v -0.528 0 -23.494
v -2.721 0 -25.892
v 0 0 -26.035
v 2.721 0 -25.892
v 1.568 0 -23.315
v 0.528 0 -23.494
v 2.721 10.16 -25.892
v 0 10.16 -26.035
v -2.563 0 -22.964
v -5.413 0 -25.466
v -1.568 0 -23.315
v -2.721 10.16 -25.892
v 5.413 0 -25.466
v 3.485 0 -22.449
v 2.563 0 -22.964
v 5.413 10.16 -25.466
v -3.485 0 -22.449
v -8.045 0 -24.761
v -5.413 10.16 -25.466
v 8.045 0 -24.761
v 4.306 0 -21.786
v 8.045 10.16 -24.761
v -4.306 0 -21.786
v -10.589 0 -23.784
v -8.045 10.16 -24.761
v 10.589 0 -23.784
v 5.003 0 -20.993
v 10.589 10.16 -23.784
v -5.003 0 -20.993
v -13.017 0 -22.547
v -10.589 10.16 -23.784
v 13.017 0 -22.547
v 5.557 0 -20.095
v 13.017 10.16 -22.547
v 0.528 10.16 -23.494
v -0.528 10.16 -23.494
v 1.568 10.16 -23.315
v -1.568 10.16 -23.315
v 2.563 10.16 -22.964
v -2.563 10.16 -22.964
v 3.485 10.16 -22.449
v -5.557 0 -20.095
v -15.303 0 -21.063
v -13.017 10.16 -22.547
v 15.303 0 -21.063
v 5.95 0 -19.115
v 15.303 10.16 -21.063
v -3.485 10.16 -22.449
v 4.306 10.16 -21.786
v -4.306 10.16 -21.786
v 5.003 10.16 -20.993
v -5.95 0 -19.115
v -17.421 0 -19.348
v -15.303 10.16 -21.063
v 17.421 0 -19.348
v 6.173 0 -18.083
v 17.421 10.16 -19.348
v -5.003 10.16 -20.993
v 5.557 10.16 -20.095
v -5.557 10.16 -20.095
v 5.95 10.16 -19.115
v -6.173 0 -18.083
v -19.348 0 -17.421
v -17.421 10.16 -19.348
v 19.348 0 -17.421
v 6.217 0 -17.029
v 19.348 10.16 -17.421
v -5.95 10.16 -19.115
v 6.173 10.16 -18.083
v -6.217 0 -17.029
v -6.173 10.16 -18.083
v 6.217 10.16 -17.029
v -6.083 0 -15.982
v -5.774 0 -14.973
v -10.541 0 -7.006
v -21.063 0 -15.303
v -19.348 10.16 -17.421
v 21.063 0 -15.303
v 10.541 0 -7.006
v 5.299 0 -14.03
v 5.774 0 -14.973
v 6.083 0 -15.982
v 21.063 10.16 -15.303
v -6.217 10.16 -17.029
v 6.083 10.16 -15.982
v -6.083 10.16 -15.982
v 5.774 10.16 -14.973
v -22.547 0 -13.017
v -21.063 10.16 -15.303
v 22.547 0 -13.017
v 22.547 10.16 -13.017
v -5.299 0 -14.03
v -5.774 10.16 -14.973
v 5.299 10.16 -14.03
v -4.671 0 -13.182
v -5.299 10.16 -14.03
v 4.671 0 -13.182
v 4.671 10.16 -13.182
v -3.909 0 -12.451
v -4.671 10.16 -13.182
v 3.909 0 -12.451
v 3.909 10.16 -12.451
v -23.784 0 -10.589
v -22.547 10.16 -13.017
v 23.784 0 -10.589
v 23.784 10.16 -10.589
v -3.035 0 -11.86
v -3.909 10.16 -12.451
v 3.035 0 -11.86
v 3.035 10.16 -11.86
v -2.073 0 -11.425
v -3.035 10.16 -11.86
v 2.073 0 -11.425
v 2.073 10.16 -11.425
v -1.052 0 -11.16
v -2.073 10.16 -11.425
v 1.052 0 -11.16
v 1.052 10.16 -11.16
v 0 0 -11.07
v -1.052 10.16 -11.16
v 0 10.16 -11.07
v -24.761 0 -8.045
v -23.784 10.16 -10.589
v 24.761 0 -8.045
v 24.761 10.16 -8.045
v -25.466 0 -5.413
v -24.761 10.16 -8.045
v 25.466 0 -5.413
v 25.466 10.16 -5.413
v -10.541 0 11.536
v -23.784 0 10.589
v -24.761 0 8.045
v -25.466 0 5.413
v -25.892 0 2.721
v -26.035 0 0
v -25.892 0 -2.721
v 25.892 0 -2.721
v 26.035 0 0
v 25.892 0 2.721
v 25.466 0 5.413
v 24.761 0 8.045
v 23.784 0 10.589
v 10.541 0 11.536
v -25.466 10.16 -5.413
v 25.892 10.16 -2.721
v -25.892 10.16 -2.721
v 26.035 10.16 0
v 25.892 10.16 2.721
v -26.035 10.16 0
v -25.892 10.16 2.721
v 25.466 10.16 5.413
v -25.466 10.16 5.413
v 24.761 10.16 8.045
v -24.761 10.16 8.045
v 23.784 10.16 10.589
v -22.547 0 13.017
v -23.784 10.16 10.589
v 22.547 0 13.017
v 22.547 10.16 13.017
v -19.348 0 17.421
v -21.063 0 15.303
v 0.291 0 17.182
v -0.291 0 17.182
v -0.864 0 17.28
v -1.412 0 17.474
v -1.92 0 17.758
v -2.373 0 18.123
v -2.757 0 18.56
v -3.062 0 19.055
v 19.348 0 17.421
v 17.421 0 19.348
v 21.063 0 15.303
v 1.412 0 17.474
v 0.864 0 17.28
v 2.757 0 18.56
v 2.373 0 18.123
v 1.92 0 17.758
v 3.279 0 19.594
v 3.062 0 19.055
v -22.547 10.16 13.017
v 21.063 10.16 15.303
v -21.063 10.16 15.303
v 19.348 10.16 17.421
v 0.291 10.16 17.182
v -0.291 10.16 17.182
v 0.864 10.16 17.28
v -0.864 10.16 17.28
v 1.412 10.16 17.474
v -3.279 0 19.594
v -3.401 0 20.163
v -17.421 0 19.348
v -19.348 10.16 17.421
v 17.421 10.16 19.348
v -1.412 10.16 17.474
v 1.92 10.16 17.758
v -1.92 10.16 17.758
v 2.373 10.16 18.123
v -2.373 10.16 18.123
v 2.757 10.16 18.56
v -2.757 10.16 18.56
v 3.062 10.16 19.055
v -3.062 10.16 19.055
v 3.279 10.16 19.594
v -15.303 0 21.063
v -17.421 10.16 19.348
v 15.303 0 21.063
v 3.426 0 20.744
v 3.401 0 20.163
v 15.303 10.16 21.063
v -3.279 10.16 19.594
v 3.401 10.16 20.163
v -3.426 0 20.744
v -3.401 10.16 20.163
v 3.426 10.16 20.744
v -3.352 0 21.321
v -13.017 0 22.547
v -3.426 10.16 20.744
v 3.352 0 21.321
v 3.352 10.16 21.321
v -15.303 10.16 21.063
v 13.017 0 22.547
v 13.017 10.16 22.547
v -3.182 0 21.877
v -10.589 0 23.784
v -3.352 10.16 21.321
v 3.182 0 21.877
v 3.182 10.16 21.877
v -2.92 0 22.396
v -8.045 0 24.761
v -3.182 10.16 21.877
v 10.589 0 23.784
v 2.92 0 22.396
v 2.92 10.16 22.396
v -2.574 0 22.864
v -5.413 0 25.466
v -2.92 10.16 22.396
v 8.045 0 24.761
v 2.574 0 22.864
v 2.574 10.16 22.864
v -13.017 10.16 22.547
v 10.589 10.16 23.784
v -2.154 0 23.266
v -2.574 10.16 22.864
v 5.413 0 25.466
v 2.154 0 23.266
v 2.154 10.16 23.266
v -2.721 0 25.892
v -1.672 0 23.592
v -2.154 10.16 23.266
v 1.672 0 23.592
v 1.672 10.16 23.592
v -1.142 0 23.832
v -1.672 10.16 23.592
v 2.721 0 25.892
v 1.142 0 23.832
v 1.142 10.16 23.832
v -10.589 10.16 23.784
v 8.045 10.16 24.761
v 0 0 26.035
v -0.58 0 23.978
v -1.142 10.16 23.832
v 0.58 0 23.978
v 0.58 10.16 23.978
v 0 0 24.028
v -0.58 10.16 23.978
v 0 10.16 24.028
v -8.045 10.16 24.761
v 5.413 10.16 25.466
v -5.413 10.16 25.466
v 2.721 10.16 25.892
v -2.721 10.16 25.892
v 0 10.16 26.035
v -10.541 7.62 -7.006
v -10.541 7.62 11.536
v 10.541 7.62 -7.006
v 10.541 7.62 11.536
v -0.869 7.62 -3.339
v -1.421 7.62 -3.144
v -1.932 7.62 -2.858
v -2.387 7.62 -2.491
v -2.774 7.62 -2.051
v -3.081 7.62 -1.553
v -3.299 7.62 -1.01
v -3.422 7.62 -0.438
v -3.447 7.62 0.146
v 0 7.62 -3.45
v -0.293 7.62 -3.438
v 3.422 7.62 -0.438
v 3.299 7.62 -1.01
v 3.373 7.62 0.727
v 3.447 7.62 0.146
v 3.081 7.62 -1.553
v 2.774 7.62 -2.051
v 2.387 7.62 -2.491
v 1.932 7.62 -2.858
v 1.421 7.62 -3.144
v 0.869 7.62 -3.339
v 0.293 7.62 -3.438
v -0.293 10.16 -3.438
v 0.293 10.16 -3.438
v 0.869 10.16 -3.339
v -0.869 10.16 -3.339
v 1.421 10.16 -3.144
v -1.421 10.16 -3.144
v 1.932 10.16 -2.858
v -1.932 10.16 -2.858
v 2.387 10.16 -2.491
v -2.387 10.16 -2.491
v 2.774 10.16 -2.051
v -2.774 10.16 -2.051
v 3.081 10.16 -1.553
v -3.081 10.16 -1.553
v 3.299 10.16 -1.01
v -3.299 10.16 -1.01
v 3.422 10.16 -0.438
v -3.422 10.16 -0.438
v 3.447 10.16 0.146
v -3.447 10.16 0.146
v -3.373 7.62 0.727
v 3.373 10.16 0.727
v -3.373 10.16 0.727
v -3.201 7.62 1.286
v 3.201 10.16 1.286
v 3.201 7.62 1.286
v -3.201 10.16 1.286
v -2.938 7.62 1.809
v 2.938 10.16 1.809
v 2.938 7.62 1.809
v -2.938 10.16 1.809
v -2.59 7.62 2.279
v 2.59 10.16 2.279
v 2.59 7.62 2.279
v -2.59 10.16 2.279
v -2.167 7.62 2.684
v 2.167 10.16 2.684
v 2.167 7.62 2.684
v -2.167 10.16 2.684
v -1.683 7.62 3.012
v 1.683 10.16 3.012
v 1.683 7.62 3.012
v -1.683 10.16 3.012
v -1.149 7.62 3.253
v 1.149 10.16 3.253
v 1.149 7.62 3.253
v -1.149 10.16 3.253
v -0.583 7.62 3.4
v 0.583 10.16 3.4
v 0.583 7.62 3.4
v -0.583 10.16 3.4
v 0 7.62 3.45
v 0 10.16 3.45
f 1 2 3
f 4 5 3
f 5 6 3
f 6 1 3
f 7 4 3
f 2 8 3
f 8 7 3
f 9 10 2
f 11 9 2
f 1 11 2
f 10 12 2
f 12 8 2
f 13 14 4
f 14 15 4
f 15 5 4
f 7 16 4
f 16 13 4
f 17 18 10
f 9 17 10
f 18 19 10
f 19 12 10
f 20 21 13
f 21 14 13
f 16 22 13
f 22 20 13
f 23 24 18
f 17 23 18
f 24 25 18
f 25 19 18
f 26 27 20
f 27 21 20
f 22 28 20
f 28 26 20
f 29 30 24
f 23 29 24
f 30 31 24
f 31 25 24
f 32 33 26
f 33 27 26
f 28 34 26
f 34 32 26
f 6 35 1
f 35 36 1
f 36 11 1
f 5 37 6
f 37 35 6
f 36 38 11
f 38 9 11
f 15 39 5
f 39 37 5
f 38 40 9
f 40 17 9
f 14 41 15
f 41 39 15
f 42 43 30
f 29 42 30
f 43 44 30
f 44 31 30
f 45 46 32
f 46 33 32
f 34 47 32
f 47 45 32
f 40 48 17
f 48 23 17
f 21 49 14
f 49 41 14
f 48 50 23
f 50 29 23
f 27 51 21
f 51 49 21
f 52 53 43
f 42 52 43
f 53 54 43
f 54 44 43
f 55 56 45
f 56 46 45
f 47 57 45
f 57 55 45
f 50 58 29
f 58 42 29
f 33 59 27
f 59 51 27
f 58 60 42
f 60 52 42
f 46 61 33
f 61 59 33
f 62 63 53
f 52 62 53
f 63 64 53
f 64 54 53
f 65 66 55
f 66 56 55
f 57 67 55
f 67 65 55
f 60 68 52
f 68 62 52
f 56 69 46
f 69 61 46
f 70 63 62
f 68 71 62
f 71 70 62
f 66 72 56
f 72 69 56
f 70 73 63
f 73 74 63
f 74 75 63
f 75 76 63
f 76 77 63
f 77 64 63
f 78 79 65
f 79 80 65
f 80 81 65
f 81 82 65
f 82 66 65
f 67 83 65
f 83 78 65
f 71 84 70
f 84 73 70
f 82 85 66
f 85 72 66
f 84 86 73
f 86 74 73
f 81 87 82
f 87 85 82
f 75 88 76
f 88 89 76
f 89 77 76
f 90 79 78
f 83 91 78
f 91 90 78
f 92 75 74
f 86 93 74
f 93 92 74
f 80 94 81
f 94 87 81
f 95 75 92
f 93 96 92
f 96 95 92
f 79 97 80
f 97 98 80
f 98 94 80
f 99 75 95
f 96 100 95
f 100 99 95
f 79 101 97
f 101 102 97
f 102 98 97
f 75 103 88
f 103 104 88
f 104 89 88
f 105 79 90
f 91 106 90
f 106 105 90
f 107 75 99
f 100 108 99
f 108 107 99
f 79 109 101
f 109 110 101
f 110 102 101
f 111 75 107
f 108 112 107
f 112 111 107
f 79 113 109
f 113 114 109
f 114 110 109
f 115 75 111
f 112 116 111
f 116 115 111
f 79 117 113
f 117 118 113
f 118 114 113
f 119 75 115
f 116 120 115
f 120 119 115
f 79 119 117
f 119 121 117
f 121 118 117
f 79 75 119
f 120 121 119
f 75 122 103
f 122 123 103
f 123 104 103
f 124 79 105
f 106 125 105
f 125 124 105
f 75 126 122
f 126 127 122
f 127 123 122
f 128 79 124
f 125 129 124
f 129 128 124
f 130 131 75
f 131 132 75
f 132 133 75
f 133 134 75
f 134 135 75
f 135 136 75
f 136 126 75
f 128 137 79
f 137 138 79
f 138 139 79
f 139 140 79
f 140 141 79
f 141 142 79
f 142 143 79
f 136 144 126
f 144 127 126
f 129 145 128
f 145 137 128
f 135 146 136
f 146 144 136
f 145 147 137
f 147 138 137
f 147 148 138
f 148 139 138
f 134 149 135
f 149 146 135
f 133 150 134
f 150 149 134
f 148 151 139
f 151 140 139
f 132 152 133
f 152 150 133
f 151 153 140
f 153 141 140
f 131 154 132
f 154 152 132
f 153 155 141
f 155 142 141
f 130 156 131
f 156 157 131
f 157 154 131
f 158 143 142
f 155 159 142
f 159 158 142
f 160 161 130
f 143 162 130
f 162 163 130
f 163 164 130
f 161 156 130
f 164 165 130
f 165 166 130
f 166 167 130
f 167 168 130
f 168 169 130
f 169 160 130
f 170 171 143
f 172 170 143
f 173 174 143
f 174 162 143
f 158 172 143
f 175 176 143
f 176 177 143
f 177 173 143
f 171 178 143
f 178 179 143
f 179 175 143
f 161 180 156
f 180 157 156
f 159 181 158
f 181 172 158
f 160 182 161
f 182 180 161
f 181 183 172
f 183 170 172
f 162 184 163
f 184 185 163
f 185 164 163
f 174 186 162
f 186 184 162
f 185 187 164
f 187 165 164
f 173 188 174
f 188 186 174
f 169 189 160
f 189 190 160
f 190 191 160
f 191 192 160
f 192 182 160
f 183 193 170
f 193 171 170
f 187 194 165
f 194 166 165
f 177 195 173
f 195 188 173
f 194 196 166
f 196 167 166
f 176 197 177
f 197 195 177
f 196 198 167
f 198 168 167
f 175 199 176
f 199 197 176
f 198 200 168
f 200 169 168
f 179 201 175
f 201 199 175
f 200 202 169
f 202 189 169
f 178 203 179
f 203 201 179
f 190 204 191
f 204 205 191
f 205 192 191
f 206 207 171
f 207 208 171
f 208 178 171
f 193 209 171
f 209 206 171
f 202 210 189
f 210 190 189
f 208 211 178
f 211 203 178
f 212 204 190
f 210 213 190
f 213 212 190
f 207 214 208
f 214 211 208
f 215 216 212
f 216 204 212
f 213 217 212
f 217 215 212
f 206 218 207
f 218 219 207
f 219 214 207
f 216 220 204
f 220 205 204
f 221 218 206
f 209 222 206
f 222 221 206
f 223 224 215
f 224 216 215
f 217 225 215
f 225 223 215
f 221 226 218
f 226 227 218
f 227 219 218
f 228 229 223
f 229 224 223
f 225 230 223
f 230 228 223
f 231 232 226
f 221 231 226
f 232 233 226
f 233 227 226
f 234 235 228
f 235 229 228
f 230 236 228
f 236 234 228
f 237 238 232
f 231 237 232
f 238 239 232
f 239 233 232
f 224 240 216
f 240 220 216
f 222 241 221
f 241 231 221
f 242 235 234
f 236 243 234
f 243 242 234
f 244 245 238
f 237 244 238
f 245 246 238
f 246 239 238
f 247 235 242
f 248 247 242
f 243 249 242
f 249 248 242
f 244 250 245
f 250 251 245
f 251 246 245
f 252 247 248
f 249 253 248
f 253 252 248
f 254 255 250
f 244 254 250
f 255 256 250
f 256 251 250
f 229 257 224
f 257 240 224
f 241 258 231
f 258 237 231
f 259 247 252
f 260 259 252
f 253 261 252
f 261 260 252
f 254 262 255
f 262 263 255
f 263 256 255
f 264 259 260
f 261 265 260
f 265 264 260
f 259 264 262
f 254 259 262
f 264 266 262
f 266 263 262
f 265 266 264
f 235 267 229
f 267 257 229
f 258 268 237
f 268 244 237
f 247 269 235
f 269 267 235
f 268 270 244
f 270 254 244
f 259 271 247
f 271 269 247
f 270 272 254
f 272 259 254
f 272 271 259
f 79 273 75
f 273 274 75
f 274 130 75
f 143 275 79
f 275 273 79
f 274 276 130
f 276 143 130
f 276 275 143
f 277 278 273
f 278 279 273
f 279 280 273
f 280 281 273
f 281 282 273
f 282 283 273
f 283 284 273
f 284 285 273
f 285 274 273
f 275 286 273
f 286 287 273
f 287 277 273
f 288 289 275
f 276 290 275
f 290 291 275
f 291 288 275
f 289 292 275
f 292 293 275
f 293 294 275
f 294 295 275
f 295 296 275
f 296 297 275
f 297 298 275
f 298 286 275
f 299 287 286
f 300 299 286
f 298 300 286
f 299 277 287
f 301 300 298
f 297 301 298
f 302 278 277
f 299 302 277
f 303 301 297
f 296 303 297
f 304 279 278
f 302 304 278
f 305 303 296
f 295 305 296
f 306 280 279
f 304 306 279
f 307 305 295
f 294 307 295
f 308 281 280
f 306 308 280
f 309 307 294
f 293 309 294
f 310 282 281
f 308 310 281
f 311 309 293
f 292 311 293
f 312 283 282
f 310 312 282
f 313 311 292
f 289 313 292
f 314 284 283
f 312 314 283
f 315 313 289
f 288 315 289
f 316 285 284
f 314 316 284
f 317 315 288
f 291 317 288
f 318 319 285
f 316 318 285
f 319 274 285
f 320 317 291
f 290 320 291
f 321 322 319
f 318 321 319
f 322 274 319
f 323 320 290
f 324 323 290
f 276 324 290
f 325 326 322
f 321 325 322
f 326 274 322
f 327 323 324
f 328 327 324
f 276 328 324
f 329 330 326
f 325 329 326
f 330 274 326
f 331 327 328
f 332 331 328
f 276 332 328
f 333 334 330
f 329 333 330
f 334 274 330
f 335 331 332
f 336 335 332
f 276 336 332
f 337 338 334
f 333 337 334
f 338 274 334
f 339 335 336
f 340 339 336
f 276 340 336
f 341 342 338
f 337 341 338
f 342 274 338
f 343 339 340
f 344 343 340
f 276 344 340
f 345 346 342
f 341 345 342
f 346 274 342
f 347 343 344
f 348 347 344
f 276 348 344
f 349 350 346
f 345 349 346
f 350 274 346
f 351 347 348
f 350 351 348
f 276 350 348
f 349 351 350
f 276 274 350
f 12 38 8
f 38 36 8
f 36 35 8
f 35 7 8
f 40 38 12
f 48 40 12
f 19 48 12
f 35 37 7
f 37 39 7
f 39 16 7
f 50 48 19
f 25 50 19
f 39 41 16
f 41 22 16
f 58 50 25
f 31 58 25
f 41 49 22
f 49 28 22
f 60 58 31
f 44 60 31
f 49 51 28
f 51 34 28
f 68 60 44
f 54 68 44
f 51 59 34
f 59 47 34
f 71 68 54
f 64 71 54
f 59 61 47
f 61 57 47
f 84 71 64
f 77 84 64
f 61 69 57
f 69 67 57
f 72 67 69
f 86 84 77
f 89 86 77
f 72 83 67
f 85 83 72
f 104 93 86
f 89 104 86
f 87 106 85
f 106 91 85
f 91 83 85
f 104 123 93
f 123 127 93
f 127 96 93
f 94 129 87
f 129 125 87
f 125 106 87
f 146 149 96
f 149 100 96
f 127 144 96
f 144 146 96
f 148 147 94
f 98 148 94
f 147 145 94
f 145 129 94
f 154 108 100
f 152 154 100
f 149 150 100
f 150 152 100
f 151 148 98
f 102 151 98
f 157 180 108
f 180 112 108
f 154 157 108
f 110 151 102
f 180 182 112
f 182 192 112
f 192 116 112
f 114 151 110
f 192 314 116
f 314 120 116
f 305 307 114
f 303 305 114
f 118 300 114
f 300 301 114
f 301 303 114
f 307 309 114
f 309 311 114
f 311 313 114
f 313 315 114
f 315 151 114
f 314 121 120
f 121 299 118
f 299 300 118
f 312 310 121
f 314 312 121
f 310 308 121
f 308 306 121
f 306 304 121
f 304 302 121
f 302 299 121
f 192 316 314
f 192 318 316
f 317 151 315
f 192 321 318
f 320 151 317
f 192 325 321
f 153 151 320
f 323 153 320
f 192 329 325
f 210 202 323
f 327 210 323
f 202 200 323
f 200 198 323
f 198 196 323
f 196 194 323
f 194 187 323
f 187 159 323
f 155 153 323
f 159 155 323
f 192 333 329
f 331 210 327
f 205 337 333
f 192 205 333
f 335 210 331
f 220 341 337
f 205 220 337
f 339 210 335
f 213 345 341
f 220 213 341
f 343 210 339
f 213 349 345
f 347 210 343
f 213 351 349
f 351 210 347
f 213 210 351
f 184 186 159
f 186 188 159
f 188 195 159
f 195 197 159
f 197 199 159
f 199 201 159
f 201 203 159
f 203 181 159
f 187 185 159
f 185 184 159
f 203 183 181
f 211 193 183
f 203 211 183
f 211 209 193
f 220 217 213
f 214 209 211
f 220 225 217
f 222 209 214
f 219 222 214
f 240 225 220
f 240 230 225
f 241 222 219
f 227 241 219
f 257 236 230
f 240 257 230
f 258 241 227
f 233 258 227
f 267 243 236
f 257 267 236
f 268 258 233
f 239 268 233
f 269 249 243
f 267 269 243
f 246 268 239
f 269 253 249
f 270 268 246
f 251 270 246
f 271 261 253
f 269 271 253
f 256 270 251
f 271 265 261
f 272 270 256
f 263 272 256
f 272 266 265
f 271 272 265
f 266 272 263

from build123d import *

# Parameters (mm, degrees)
SKETCH1_R           = 26.035
BOSS_EXTRUDE1_DEPTH = 10.16
SKETCH2_R           = 6.223
SKETCH2_R_2         = 3.429
SKETCH2_R_3         = 3.45
CUT_EXTRUDE1_DEPTH  = 39.195131234
SKETCH3_W           = 21.082
SKETCH3_H           = 18.542
CUT_EXTRUDE2_DEPTH  = 7.62


with BuildPart() as part:
    # Sketch1 → Boss-Extrude1 (new body)
    with BuildSketch(Plane(origin=(0, 0, 0), x_dir=(1, 0, 0), z_dir=(0, 1, 0))):
        with Locations(Location((0, 0, 0), (0, 0, 270))):
            Circle(SKETCH1_R)
    extrude(amount=BOSS_EXTRUDE1_DEPTH)

    # Sketch2 → Cut-Extrude1 (cut, through all)
    with BuildSketch(Plane(origin=(0, 10.16, 0), x_dir=(1, 0, 0), z_dir=(0, 1, 0))):
        with Locations(Location((0, 17.293004752, 0), (0, 0, 270))):
            Circle(SKETCH2_R)
        with Locations(Location((0, -20.598576002, 0), (0, 0, 270))):
            Circle(SKETCH2_R_2)
        with Locations(Location((0, 0, 0), (0, 0, 270))):
            Circle(SKETCH2_R_3)
    extrude(amount=-CUT_EXTRUDE1_DEPTH, mode=Mode.SUBTRACT)

    # Sketch3 → Cut-Extrude2 (cut)
    with BuildSketch(Plane.XZ):
        with Locations((0, 2.265)):
            Rectangle(SKETCH3_W, SKETCH3_H)
    extrude(amount=-CUT_EXTRUDE2_DEPTH, mode=Mode.SUBTRACT)


solid = part.part
